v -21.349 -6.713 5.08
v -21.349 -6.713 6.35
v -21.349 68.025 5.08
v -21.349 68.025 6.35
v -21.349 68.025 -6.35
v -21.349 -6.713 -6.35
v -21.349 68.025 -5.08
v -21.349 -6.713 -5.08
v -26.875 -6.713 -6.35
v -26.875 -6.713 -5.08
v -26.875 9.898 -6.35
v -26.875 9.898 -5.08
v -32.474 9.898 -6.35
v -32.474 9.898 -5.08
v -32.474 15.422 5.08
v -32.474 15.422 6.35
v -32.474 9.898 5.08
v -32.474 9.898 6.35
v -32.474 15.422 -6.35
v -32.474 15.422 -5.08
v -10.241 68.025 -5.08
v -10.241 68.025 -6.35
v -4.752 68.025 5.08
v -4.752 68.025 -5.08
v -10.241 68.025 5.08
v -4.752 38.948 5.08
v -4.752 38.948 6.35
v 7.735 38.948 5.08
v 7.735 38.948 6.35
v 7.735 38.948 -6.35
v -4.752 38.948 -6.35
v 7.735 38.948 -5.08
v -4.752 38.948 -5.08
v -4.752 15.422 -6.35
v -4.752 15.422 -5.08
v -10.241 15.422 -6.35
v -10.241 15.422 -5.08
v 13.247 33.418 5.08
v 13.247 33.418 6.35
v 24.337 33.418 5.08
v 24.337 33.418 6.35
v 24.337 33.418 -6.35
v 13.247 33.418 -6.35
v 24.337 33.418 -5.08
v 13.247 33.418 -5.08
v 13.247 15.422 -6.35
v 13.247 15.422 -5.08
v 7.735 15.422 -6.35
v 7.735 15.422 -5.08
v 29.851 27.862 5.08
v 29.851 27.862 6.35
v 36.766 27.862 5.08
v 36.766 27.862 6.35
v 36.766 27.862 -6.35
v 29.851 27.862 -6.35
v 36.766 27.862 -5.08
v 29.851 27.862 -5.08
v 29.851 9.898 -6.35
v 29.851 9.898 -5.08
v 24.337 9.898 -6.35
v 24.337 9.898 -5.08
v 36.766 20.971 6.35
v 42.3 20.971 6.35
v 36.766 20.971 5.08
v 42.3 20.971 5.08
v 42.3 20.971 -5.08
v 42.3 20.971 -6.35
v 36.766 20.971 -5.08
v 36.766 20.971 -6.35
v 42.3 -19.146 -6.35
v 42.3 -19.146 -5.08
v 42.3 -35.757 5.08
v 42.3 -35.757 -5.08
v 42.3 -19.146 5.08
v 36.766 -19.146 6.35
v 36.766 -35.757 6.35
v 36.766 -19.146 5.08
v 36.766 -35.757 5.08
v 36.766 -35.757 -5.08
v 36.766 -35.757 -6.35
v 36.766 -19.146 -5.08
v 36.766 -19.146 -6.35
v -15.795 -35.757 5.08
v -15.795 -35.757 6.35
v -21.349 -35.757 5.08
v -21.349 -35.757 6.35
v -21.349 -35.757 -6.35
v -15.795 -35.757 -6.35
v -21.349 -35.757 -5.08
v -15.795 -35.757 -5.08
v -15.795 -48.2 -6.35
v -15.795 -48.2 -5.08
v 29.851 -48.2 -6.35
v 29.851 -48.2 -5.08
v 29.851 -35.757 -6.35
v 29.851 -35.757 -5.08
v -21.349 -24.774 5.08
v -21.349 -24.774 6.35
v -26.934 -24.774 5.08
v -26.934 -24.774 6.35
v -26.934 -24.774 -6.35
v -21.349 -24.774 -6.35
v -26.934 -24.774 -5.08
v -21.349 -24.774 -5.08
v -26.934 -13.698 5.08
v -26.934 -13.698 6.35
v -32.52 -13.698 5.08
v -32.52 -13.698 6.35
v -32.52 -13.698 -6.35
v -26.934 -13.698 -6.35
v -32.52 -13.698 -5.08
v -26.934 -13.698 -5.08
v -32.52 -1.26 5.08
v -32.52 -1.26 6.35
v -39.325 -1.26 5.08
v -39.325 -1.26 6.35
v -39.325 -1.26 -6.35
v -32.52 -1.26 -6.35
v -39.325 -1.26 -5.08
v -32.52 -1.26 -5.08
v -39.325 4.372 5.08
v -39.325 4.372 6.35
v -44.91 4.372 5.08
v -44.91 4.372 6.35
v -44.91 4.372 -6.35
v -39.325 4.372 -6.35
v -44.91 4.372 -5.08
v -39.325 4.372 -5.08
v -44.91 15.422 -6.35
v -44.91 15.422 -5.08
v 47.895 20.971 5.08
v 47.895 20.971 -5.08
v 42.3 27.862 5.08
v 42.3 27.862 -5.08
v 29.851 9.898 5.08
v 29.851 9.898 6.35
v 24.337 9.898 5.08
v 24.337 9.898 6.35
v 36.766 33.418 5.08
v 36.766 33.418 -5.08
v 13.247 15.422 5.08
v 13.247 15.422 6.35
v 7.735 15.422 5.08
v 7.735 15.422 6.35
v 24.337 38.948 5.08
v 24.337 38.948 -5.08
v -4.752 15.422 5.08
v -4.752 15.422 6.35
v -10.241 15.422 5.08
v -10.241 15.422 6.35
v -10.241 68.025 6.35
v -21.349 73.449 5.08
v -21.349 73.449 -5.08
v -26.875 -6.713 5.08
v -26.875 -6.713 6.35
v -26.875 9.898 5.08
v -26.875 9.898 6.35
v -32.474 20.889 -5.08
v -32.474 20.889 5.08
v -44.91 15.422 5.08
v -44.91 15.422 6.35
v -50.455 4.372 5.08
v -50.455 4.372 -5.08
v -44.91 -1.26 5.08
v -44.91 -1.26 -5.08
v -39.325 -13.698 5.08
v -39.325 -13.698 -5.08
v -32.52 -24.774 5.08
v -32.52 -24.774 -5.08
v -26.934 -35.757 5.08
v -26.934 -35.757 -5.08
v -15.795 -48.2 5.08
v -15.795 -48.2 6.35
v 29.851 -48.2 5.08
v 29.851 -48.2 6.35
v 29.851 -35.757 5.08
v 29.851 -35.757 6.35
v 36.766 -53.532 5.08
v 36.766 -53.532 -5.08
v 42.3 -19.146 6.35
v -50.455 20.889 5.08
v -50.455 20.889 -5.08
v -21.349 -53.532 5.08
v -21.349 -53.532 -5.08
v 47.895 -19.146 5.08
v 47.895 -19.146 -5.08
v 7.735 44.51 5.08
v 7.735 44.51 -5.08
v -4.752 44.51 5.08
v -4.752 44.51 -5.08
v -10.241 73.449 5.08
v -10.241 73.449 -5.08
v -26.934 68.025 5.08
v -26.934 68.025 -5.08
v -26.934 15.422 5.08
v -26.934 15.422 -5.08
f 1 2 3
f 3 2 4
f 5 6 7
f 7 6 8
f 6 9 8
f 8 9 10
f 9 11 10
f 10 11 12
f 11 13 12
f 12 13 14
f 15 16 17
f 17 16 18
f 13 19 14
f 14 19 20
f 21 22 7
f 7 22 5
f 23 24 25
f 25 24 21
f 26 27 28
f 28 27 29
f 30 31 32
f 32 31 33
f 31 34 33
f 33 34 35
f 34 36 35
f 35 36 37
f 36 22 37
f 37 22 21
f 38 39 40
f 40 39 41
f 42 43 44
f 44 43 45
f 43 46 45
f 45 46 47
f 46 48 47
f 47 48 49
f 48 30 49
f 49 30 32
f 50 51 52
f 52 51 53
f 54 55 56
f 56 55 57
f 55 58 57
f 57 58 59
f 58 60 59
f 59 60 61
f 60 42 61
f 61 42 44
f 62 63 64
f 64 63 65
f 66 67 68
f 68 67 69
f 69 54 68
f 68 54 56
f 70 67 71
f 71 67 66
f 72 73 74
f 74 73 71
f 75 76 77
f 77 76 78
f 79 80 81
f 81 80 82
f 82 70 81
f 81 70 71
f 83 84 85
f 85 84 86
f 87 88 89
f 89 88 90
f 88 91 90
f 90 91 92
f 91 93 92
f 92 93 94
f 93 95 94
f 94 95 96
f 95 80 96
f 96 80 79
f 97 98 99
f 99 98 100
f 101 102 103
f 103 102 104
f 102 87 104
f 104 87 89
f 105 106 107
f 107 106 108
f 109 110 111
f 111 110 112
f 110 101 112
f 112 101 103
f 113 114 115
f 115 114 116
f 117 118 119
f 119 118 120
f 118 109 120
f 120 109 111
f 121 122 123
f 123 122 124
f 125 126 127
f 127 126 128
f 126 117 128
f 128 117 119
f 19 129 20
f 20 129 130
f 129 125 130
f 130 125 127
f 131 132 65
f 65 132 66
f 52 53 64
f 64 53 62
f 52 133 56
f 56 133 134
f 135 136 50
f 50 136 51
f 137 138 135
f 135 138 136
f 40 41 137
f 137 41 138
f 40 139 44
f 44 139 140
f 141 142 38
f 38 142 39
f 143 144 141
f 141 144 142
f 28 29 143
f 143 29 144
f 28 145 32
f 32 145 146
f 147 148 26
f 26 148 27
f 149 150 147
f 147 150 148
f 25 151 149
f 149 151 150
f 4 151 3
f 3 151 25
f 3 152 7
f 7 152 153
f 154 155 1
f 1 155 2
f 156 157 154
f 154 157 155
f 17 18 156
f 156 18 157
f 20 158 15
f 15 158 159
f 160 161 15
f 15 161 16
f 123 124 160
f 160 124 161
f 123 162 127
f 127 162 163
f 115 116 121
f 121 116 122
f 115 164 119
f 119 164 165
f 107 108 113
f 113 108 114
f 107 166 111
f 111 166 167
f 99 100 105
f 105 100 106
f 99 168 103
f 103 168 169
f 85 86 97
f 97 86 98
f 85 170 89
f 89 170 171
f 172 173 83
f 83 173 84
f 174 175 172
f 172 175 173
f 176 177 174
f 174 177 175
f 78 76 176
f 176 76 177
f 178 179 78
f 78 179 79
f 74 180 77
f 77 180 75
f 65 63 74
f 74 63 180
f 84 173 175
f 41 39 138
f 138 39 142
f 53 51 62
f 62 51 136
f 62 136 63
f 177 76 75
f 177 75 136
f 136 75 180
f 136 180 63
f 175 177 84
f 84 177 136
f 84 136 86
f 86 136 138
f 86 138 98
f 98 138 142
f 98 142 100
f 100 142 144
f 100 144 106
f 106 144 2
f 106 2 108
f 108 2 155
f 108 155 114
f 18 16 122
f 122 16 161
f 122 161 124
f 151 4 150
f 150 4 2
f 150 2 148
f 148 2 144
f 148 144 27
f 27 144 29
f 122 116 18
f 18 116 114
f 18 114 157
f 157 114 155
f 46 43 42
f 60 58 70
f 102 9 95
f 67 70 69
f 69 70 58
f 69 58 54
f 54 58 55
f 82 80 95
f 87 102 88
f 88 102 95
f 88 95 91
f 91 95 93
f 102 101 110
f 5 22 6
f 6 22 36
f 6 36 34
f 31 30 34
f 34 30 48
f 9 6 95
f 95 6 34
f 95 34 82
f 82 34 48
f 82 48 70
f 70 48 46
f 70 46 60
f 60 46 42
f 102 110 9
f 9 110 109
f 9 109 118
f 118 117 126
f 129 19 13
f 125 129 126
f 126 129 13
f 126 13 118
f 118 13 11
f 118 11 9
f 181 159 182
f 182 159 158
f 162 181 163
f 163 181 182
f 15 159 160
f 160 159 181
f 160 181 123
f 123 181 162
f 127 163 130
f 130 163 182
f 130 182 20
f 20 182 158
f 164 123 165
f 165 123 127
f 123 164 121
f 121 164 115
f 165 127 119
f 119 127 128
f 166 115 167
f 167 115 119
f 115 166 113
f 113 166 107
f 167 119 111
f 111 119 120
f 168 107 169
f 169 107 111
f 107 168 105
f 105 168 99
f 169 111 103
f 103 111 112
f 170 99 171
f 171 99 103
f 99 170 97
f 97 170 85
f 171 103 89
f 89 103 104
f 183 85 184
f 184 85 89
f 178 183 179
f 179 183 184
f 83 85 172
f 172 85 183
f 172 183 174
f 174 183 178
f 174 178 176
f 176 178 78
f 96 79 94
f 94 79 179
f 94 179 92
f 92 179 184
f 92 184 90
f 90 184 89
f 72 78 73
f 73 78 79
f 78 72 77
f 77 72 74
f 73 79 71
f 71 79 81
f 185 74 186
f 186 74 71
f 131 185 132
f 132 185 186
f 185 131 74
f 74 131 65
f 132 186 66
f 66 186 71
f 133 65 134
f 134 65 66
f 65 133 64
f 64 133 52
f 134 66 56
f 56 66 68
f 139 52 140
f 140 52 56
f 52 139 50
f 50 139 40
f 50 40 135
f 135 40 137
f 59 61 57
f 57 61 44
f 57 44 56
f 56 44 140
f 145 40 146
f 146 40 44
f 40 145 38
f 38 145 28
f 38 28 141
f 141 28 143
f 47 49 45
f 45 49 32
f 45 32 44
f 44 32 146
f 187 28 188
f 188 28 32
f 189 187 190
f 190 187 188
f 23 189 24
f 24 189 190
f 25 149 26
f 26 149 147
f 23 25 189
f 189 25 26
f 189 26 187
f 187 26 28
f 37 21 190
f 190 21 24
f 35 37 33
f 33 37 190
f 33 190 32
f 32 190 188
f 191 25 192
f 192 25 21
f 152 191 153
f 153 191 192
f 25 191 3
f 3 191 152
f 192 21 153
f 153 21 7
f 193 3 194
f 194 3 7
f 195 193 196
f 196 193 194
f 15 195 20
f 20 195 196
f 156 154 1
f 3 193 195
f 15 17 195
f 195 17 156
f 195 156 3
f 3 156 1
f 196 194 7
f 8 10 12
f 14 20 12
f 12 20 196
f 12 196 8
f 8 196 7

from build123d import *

# Parameters (mm, degrees)
BOSS_EXTRUDE1_DEPTH = 6.35
SKETCH1_4_W         = 5.585166648
SKETCH1_4_H         = 10.982596602
SKETCH1_4_W_2       = 5.534111201
SKETCH1_4_H_2       = 16.61114729
SKETCH1_4_H_3       = 11.076464949
SKETCH1_4_W_3       = 5.595450485
SKETCH1_4_H_4       = 40.116759918
SKETCH1_4_W_4       = 6.80545516
SKETCH1_4_H_5       = 12.437555982
SKETCH1_4_H_6       = 6.891111662
SKETCH1_4_H_7       = 5.632100821
SKETCH1_4_W_5       = 11.108414189
SKETCH1_4_H_8       = 5.424016142
BOSS_EXTRUDE2_DEPTH = 5.08


with BuildPart() as part:
    # Sketch1 → Boss-Extrude1 (new, symmetric)
    with BuildSketch(Plane.XY):
        Polygon((-21.349268481, -24.774385929), (-21.349268481, -35.756982531), (-15.795061386, -35.756982531), (-15.795061386, -48.199580791), (29.851375766, -48.199580791), (29.851375766, -35.756982531), (36.765931583, -35.756982531), (36.765931583, -19.145835241), (42.300042784, -19.145835241), (42.300042784, 20.970924677), (36.765931583, 20.970924677), (36.765931583, 27.862036339), (29.851375766, 27.862036339), (29.851375766, 9.897989881), (24.337202566, 9.897989881), (24.337202566, 33.41786203), (13.247182022, 33.41786203), (13.247182022, 15.422486478), (7.735264144, 15.422486478), (7.735264144, 38.947796151), (-4.751796061, 38.947796151), (-4.751796061, 15.422486478), (-10.240854292, 15.422486478), (-10.240854292, 68.024806454), (-21.349268481, 68.024806454), (-21.349268481, -6.713303634), (-26.874799511, -6.713303634), (-26.874799511, 9.897989881), (-32.473823981, 9.897989881), (-32.473823981, 15.422486478), (-44.910223585, 15.422486478), (-44.910223585, 4.371735823), (-39.325056937, 4.371735823), (-39.325056937, -1.260364998), (-32.519601777, -1.260364998), (-32.519601777, -13.69792098), (-26.934435129, -13.69792098), (-26.934435129, -24.774385929), align=None)
    extrude(amount=BOSS_EXTRUDE1_DEPTH, both=True)

    # Sketch1<4> → Boss-Extrude2 (add, symmetric)
    with BuildSketch(Plane.XY):
        Polygon((-21.349268481, -35.756982531), (-21.349268481, -53.531928868), (36.765931583, -53.531928868), (36.765931583, -35.756982531), (29.851375766, -35.756982531), (29.851375766, -48.199580791), (-15.795061386, -48.199580791), (-15.795061386, -35.756982531), align=None)
        with Locations((-24.141851805, -30.26568423)):
            Rectangle(SKETCH1_4_W, SKETCH1_4_H)
        with Locations((39.532987184, -27.451408886)):
            Rectangle(SKETCH1_4_W_2, SKETCH1_4_H_2)
        with Locations((-29.727018453, -19.236153455)):
            Rectangle(SKETCH1_4_W, SKETCH1_4_H_3)
        with Locations((45.097768027, 0.912544718)):
            Rectangle(SKETCH1_4_W_3, SKETCH1_4_H_4)
        with Locations((-35.922329357, -7.479142989)):
            Rectangle(SKETCH1_4_W_4, SKETCH1_4_H_5)
        with Locations((39.532987184, 24.416480508)):
            Rectangle(SKETCH1_4_W_2, SKETCH1_4_H_6)
        with Locations((-42.117640261, 1.555685412)):
            Rectangle(SKETCH1_4_W, SKETCH1_4_H_7)
        Polygon((29.851375766, 27.862036339), (36.765931583, 27.862036339), (36.765931583, 33.41786203), (24.337202566, 33.41786203), (24.337202566, 9.897989881), (29.851375766, 9.897989881), align=None)
        Polygon((-50.454609627, 4.371735823), (-44.910223585, 4.371735823), (-44.910223585, 15.422486478), (-32.473823981, 15.422486478), (-32.473823981, 20.888501361), (-50.454609627, 20.888501361), align=None)
        Polygon((13.247182022, 33.41786203), (24.337202566, 33.41786203), (24.337202566, 38.947796151), (7.735264144, 38.947796151), (7.735264144, 15.422486478), (13.247182022, 15.422486478), align=None)
        Polygon((-26.934435129, 15.422486478), (-32.473823981, 15.422486478), (-32.473823981, 9.897989881), (-26.874799511, 9.897989881), (-26.874799511, -6.713303634), (-21.349268481, -6.713303634), (-21.349268481, 68.024806454), (-26.934435129, 68.024806454), align=None)
        Polygon((-4.751796061, 38.947796151), (7.735264144, 38.947796151), (7.735264144, 44.510136865), (-4.751796061, 44.510136865), (-4.751796061, 68.024806454), (-10.240854292, 68.024806454), (-10.240854292, 15.422486478), (-4.751796061, 15.422486478), align=None)
        with Locations((-15.795061387, 70.736814525)):
            Rectangle(SKETCH1_4_W_5, SKETCH1_4_H_8)
    extrude(amount=BOSS_EXTRUDE2_DEPTH, both=True)


solid = part.part
